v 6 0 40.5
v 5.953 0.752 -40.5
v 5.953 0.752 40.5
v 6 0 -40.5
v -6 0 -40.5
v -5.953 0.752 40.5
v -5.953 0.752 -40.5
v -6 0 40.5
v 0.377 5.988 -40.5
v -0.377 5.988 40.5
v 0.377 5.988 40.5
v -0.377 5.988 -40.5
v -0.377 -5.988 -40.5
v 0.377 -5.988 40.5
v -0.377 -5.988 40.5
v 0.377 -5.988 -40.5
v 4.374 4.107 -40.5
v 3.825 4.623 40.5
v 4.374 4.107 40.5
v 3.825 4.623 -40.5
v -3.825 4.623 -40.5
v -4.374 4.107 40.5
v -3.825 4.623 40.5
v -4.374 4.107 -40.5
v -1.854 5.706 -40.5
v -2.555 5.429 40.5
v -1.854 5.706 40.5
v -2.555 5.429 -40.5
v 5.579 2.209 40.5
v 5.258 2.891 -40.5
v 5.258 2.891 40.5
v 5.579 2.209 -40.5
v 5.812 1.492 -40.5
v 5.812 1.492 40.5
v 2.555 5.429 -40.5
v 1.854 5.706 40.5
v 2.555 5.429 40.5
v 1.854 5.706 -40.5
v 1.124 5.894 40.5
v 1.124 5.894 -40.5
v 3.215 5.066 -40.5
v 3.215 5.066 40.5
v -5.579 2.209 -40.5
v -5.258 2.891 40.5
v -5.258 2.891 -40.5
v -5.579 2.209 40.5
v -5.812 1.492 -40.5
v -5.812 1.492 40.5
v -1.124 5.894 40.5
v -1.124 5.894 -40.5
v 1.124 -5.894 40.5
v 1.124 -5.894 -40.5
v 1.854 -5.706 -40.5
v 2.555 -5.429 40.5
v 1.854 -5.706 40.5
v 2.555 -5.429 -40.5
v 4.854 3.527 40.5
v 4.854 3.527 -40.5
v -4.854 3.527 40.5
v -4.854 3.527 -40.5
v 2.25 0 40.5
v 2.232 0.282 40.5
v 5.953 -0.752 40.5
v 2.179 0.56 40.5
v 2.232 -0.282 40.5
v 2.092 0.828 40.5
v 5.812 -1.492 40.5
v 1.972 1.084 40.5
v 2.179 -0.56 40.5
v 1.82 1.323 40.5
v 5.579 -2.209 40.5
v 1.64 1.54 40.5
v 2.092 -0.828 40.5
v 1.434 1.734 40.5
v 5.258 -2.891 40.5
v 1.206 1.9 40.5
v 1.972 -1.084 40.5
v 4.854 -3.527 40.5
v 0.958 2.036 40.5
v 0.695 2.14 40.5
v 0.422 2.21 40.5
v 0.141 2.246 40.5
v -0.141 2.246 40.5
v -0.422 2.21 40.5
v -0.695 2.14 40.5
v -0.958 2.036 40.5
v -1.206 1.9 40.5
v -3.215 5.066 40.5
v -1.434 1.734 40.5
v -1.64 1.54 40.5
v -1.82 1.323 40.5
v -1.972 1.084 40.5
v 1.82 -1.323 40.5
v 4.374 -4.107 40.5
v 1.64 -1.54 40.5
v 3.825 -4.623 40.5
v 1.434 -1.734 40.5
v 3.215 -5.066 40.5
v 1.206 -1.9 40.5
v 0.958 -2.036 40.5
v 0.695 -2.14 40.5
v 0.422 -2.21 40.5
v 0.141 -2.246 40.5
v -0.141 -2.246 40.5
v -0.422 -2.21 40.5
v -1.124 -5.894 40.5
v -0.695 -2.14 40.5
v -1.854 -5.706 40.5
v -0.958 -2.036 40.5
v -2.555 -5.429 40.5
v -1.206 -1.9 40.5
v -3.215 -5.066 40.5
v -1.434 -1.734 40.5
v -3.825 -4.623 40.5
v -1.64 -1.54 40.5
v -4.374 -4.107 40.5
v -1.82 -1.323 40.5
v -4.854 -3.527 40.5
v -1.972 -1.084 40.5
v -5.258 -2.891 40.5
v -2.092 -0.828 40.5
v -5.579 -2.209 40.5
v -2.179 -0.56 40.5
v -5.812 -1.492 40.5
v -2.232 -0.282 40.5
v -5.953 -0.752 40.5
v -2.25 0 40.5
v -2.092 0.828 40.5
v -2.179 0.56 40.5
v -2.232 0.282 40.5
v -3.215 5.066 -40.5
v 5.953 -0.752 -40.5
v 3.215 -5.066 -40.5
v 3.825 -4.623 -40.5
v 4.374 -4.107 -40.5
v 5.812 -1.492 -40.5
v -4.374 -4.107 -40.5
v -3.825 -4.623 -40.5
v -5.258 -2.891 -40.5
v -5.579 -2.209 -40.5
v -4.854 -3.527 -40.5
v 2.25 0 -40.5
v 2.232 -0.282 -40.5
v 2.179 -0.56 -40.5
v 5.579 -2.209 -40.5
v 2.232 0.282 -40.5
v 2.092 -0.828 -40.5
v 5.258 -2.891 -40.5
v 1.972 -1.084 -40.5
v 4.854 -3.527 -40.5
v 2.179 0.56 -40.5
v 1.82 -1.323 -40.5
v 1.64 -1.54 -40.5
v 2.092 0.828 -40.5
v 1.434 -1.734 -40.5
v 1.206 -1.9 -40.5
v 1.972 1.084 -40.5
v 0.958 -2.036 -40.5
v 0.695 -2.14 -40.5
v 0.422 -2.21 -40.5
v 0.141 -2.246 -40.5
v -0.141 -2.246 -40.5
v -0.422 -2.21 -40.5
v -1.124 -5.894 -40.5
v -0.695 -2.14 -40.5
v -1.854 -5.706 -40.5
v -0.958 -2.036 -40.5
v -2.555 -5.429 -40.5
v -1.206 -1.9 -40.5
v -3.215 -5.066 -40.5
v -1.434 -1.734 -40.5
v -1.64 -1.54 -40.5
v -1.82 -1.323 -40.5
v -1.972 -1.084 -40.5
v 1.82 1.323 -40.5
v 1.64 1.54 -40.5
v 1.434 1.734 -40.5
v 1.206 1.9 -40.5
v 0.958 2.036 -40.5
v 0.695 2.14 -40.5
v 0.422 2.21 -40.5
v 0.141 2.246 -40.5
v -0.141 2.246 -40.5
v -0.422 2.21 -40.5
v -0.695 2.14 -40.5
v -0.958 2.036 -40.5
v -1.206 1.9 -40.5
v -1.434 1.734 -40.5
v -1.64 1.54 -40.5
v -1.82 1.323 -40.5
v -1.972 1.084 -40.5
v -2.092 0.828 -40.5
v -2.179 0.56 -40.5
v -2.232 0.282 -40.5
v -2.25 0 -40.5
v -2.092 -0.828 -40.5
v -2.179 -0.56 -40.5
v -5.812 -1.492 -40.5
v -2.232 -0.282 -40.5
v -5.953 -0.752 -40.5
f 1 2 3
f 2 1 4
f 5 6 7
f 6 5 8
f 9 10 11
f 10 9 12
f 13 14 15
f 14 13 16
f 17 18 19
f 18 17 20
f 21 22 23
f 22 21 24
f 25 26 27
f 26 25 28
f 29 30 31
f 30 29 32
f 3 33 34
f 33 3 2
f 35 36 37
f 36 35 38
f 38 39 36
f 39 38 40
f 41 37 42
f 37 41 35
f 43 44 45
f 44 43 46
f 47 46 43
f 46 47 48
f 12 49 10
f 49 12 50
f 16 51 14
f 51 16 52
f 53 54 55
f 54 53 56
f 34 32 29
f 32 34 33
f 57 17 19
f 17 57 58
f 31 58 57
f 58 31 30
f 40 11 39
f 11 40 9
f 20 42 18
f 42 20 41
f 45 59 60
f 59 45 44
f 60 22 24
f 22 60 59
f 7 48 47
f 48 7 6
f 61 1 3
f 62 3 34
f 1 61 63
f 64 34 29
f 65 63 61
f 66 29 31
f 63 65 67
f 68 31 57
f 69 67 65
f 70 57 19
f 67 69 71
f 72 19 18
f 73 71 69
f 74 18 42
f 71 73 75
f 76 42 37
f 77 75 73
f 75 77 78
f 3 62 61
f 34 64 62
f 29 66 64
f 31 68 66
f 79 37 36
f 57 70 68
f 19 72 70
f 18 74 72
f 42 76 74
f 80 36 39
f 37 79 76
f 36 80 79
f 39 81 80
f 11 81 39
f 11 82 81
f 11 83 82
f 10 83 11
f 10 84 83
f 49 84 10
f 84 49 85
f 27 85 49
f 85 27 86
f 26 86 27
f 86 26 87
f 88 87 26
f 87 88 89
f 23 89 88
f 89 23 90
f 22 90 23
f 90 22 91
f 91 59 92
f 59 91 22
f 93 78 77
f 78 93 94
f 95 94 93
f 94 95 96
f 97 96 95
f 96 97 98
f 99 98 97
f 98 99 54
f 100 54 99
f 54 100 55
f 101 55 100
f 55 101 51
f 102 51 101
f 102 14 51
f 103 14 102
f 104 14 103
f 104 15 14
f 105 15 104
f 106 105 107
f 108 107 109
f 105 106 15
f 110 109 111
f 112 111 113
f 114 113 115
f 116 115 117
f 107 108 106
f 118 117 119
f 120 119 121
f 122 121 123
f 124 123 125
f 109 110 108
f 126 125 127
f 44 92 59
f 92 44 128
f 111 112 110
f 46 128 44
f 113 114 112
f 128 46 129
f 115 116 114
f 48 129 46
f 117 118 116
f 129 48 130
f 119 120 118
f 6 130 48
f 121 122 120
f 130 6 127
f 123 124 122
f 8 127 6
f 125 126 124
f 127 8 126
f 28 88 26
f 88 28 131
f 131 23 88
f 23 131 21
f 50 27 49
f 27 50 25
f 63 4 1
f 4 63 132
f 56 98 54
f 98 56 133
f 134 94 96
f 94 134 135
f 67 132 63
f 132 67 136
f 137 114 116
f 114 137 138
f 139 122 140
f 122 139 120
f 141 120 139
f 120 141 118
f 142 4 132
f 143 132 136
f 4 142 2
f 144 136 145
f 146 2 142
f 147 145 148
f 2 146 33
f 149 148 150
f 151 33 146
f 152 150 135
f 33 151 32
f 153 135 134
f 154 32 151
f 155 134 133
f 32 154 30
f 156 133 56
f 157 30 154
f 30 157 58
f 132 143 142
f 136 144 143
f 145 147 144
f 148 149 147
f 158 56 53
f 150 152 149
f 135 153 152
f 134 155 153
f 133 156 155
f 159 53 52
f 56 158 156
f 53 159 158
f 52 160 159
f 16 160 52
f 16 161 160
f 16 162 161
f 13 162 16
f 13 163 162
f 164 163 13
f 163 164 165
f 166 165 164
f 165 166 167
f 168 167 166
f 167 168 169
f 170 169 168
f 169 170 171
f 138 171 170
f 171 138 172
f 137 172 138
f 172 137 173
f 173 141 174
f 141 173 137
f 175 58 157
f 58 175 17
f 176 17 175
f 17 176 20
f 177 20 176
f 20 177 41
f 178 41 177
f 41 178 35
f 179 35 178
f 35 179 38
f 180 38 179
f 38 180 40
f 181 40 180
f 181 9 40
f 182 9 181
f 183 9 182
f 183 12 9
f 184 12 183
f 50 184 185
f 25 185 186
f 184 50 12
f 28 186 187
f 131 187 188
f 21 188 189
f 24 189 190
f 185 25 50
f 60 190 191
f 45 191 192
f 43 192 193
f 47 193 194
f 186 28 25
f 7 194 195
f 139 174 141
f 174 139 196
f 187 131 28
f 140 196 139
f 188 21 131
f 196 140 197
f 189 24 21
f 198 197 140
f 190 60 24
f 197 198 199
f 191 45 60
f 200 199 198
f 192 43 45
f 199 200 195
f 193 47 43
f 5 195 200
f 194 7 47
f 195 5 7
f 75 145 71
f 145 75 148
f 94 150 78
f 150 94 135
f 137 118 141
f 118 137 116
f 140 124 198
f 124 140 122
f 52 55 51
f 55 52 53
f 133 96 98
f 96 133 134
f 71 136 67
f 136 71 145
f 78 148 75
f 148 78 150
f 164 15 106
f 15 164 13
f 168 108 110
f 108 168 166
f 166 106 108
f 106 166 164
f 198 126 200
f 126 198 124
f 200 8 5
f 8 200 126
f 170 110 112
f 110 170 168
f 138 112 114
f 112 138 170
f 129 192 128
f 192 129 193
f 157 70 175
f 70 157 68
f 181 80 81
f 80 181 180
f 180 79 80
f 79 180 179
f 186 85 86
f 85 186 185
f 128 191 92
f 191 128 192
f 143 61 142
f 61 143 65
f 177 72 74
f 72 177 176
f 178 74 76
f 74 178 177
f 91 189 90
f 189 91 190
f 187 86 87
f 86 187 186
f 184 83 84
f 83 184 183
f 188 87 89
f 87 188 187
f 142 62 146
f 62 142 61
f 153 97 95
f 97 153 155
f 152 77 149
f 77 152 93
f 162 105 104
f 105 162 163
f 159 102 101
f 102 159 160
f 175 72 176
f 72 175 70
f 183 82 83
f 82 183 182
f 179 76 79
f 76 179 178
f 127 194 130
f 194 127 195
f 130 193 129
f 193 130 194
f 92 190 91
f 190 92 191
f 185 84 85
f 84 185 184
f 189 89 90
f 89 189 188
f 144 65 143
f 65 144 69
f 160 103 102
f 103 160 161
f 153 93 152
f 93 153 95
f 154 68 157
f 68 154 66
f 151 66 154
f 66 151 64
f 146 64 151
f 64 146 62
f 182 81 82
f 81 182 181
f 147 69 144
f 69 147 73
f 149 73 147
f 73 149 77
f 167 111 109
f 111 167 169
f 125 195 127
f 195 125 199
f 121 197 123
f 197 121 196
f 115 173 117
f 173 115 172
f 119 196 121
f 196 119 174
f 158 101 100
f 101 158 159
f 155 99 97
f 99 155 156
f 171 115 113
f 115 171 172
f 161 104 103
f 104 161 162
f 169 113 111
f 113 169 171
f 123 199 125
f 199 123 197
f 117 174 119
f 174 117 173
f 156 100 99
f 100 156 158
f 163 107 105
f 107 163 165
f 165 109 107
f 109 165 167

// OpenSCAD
$fn = 50;


difference() {
	union() {
		translate(v = [0, 0, -40.5000000000]) {
			cylinder(h = 81, r = 6.0000000000);
		}
	}
	union() {
		translate(v = [0, 0, -100.0000000000]) {
			cylinder(h = 200, r = 2.2500000000);
		}
	}
}
